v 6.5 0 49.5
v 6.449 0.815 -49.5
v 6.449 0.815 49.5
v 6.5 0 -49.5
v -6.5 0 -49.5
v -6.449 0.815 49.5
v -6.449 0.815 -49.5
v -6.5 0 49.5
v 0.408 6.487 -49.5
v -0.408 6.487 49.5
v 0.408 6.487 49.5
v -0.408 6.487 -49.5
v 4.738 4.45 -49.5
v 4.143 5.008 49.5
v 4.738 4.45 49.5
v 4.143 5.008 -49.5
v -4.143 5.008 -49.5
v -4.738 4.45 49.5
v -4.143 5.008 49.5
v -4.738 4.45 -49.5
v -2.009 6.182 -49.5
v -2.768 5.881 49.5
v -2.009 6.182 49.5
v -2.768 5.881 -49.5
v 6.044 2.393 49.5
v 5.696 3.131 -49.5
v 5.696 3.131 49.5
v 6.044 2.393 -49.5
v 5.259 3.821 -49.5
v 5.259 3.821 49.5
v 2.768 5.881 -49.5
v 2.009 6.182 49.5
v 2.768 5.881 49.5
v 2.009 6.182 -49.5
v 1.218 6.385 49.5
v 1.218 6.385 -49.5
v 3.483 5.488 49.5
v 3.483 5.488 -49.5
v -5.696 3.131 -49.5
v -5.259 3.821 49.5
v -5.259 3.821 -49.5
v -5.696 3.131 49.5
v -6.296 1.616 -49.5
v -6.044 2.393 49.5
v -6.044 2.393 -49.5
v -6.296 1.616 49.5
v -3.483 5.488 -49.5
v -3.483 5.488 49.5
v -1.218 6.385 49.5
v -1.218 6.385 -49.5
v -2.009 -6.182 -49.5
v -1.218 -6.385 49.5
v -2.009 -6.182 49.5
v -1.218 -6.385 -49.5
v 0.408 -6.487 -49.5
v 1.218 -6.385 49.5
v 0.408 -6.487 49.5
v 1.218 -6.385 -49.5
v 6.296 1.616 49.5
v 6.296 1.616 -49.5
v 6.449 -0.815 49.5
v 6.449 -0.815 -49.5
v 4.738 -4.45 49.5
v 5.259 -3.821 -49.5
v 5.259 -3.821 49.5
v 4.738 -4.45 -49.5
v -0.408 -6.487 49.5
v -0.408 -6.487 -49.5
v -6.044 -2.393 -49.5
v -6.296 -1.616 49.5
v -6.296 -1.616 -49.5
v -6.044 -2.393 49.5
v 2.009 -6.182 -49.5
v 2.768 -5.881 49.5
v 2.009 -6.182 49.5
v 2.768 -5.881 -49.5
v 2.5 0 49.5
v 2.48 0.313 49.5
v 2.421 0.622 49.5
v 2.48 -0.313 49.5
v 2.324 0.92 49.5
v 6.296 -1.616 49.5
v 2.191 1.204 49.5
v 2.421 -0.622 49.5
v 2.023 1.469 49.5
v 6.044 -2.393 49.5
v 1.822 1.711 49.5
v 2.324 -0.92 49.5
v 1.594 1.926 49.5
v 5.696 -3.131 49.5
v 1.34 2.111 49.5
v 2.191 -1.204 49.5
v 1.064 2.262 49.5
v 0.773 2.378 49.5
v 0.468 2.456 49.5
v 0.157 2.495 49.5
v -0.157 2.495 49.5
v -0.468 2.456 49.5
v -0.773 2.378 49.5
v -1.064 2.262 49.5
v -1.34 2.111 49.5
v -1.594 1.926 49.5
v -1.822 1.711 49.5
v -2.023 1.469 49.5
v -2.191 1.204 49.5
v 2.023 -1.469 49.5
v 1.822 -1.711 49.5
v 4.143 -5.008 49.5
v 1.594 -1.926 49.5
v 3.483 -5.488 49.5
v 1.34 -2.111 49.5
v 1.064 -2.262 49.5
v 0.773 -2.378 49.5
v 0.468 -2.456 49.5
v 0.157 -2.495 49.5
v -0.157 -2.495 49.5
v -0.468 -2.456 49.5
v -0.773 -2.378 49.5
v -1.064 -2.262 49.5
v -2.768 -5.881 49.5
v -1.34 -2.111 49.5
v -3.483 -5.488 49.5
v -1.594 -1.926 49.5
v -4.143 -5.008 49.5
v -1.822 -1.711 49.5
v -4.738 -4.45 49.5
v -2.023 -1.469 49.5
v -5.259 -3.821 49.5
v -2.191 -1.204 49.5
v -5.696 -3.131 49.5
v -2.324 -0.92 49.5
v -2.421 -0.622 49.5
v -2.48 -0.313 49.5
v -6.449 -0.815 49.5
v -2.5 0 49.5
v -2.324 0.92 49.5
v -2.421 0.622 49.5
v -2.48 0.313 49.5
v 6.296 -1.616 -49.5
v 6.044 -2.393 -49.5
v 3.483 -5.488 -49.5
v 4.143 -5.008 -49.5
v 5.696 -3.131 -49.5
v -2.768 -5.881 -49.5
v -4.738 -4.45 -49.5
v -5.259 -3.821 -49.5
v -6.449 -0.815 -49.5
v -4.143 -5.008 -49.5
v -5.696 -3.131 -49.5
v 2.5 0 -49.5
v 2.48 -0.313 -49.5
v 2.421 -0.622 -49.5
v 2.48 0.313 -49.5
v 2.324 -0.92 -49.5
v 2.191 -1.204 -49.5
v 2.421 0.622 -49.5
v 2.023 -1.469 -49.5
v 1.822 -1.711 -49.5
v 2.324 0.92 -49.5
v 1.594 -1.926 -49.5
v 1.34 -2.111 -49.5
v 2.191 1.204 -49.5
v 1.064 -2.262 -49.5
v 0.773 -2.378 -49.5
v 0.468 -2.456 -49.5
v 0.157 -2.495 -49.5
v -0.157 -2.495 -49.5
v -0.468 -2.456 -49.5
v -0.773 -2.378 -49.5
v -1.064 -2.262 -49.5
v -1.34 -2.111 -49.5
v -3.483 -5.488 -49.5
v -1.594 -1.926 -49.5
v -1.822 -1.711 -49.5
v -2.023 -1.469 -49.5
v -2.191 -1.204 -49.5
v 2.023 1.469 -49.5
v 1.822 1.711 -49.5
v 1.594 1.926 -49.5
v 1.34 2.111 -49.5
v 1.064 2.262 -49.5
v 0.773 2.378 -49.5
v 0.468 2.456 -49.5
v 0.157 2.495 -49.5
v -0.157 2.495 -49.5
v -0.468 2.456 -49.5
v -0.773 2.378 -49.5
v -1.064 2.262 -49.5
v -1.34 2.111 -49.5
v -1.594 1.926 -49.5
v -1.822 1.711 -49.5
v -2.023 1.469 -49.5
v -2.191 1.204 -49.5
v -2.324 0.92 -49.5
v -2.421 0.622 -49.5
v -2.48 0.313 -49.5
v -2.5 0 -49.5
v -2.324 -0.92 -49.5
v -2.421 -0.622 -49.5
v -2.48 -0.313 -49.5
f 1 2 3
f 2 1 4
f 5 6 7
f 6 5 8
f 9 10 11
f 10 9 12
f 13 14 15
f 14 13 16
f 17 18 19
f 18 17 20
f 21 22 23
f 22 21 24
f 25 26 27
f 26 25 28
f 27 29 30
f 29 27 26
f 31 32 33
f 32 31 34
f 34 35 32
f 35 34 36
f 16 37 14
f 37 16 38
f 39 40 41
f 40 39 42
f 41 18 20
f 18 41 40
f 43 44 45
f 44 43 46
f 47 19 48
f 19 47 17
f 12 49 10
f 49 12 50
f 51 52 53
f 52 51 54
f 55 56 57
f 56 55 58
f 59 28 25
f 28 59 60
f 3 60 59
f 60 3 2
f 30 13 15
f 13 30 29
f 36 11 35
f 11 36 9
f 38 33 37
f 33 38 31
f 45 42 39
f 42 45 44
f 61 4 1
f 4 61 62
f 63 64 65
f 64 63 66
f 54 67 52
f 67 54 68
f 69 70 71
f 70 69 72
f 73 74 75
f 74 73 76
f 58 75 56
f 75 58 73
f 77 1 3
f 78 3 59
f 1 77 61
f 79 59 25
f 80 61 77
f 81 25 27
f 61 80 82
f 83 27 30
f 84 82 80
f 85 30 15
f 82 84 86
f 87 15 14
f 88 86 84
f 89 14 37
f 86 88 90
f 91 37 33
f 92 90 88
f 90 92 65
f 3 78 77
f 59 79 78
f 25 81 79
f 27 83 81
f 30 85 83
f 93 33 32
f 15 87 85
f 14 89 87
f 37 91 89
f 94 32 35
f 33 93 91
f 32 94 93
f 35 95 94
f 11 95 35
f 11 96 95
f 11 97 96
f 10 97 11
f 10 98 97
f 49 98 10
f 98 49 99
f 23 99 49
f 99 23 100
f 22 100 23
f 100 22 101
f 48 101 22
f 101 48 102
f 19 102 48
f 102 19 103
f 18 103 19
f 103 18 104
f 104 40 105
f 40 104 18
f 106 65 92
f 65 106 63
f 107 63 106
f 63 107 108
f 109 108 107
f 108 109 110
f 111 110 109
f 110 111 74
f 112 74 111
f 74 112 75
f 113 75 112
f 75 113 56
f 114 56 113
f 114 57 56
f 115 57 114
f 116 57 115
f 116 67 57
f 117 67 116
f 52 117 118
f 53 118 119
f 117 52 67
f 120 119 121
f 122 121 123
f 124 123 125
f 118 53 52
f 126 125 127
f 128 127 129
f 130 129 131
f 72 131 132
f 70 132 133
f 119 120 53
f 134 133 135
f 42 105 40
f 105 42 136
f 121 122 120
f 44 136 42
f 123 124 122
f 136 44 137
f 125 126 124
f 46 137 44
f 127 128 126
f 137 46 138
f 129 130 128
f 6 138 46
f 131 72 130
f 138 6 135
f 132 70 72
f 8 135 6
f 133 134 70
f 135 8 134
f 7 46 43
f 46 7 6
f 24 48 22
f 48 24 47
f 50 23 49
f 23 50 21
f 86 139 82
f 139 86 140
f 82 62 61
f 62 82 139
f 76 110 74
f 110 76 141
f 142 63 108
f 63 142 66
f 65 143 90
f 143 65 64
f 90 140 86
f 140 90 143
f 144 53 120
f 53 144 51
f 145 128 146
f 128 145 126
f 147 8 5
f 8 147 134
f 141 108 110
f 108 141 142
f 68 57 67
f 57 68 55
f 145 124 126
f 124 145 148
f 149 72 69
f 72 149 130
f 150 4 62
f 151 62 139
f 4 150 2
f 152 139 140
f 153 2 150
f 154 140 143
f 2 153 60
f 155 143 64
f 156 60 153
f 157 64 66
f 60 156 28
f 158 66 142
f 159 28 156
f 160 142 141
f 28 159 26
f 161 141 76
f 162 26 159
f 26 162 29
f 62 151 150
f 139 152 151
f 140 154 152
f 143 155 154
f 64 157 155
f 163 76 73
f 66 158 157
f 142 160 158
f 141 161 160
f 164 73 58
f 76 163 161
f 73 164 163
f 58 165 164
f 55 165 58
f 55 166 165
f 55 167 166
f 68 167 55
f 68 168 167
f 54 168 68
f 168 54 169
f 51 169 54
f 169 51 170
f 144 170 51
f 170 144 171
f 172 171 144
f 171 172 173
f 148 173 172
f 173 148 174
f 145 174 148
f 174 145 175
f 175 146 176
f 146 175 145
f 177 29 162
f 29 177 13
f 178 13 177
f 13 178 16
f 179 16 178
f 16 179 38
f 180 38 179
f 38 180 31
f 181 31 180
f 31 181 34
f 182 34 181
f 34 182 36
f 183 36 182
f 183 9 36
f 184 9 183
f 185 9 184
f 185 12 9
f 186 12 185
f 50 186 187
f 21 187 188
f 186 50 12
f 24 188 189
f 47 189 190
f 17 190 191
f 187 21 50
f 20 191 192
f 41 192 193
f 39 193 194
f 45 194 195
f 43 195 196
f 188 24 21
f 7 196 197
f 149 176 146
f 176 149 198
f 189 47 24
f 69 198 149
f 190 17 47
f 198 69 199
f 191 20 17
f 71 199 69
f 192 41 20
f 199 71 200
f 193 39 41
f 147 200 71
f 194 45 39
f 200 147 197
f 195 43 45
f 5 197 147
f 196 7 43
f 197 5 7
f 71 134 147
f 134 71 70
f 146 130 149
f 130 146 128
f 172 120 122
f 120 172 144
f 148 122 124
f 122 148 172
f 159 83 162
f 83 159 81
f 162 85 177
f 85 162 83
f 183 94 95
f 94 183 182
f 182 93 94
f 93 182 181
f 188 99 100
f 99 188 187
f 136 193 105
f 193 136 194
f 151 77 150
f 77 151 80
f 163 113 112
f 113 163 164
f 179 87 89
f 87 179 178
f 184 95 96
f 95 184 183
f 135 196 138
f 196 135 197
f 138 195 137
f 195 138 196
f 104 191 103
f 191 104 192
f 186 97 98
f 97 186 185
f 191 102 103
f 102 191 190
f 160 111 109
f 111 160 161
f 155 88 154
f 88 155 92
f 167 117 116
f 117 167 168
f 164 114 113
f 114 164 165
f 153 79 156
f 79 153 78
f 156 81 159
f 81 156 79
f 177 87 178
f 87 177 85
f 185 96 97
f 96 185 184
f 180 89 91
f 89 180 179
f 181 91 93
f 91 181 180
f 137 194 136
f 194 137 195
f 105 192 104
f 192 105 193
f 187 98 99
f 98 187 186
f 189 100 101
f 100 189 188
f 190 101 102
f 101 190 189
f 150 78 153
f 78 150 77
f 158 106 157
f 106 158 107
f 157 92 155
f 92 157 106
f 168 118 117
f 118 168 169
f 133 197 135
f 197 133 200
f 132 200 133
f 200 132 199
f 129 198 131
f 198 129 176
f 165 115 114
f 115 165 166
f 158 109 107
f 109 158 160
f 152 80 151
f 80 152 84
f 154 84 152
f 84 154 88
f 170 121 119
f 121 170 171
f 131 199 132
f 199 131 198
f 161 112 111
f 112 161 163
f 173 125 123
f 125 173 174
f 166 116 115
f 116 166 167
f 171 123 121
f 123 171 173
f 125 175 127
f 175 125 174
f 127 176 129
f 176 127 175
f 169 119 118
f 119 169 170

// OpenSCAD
$fn = 50;


difference() {
	union() {
		translate(v = [0, 0, -49.5000000000]) {
			cylinder(h = 99, r = 6.5000000000);
		}
	}
	union() {
		translate(v = [0, 0, -100.0000000000]) {
			cylinder(h = 200, r = 2.5000000000);
		}
	}
}
